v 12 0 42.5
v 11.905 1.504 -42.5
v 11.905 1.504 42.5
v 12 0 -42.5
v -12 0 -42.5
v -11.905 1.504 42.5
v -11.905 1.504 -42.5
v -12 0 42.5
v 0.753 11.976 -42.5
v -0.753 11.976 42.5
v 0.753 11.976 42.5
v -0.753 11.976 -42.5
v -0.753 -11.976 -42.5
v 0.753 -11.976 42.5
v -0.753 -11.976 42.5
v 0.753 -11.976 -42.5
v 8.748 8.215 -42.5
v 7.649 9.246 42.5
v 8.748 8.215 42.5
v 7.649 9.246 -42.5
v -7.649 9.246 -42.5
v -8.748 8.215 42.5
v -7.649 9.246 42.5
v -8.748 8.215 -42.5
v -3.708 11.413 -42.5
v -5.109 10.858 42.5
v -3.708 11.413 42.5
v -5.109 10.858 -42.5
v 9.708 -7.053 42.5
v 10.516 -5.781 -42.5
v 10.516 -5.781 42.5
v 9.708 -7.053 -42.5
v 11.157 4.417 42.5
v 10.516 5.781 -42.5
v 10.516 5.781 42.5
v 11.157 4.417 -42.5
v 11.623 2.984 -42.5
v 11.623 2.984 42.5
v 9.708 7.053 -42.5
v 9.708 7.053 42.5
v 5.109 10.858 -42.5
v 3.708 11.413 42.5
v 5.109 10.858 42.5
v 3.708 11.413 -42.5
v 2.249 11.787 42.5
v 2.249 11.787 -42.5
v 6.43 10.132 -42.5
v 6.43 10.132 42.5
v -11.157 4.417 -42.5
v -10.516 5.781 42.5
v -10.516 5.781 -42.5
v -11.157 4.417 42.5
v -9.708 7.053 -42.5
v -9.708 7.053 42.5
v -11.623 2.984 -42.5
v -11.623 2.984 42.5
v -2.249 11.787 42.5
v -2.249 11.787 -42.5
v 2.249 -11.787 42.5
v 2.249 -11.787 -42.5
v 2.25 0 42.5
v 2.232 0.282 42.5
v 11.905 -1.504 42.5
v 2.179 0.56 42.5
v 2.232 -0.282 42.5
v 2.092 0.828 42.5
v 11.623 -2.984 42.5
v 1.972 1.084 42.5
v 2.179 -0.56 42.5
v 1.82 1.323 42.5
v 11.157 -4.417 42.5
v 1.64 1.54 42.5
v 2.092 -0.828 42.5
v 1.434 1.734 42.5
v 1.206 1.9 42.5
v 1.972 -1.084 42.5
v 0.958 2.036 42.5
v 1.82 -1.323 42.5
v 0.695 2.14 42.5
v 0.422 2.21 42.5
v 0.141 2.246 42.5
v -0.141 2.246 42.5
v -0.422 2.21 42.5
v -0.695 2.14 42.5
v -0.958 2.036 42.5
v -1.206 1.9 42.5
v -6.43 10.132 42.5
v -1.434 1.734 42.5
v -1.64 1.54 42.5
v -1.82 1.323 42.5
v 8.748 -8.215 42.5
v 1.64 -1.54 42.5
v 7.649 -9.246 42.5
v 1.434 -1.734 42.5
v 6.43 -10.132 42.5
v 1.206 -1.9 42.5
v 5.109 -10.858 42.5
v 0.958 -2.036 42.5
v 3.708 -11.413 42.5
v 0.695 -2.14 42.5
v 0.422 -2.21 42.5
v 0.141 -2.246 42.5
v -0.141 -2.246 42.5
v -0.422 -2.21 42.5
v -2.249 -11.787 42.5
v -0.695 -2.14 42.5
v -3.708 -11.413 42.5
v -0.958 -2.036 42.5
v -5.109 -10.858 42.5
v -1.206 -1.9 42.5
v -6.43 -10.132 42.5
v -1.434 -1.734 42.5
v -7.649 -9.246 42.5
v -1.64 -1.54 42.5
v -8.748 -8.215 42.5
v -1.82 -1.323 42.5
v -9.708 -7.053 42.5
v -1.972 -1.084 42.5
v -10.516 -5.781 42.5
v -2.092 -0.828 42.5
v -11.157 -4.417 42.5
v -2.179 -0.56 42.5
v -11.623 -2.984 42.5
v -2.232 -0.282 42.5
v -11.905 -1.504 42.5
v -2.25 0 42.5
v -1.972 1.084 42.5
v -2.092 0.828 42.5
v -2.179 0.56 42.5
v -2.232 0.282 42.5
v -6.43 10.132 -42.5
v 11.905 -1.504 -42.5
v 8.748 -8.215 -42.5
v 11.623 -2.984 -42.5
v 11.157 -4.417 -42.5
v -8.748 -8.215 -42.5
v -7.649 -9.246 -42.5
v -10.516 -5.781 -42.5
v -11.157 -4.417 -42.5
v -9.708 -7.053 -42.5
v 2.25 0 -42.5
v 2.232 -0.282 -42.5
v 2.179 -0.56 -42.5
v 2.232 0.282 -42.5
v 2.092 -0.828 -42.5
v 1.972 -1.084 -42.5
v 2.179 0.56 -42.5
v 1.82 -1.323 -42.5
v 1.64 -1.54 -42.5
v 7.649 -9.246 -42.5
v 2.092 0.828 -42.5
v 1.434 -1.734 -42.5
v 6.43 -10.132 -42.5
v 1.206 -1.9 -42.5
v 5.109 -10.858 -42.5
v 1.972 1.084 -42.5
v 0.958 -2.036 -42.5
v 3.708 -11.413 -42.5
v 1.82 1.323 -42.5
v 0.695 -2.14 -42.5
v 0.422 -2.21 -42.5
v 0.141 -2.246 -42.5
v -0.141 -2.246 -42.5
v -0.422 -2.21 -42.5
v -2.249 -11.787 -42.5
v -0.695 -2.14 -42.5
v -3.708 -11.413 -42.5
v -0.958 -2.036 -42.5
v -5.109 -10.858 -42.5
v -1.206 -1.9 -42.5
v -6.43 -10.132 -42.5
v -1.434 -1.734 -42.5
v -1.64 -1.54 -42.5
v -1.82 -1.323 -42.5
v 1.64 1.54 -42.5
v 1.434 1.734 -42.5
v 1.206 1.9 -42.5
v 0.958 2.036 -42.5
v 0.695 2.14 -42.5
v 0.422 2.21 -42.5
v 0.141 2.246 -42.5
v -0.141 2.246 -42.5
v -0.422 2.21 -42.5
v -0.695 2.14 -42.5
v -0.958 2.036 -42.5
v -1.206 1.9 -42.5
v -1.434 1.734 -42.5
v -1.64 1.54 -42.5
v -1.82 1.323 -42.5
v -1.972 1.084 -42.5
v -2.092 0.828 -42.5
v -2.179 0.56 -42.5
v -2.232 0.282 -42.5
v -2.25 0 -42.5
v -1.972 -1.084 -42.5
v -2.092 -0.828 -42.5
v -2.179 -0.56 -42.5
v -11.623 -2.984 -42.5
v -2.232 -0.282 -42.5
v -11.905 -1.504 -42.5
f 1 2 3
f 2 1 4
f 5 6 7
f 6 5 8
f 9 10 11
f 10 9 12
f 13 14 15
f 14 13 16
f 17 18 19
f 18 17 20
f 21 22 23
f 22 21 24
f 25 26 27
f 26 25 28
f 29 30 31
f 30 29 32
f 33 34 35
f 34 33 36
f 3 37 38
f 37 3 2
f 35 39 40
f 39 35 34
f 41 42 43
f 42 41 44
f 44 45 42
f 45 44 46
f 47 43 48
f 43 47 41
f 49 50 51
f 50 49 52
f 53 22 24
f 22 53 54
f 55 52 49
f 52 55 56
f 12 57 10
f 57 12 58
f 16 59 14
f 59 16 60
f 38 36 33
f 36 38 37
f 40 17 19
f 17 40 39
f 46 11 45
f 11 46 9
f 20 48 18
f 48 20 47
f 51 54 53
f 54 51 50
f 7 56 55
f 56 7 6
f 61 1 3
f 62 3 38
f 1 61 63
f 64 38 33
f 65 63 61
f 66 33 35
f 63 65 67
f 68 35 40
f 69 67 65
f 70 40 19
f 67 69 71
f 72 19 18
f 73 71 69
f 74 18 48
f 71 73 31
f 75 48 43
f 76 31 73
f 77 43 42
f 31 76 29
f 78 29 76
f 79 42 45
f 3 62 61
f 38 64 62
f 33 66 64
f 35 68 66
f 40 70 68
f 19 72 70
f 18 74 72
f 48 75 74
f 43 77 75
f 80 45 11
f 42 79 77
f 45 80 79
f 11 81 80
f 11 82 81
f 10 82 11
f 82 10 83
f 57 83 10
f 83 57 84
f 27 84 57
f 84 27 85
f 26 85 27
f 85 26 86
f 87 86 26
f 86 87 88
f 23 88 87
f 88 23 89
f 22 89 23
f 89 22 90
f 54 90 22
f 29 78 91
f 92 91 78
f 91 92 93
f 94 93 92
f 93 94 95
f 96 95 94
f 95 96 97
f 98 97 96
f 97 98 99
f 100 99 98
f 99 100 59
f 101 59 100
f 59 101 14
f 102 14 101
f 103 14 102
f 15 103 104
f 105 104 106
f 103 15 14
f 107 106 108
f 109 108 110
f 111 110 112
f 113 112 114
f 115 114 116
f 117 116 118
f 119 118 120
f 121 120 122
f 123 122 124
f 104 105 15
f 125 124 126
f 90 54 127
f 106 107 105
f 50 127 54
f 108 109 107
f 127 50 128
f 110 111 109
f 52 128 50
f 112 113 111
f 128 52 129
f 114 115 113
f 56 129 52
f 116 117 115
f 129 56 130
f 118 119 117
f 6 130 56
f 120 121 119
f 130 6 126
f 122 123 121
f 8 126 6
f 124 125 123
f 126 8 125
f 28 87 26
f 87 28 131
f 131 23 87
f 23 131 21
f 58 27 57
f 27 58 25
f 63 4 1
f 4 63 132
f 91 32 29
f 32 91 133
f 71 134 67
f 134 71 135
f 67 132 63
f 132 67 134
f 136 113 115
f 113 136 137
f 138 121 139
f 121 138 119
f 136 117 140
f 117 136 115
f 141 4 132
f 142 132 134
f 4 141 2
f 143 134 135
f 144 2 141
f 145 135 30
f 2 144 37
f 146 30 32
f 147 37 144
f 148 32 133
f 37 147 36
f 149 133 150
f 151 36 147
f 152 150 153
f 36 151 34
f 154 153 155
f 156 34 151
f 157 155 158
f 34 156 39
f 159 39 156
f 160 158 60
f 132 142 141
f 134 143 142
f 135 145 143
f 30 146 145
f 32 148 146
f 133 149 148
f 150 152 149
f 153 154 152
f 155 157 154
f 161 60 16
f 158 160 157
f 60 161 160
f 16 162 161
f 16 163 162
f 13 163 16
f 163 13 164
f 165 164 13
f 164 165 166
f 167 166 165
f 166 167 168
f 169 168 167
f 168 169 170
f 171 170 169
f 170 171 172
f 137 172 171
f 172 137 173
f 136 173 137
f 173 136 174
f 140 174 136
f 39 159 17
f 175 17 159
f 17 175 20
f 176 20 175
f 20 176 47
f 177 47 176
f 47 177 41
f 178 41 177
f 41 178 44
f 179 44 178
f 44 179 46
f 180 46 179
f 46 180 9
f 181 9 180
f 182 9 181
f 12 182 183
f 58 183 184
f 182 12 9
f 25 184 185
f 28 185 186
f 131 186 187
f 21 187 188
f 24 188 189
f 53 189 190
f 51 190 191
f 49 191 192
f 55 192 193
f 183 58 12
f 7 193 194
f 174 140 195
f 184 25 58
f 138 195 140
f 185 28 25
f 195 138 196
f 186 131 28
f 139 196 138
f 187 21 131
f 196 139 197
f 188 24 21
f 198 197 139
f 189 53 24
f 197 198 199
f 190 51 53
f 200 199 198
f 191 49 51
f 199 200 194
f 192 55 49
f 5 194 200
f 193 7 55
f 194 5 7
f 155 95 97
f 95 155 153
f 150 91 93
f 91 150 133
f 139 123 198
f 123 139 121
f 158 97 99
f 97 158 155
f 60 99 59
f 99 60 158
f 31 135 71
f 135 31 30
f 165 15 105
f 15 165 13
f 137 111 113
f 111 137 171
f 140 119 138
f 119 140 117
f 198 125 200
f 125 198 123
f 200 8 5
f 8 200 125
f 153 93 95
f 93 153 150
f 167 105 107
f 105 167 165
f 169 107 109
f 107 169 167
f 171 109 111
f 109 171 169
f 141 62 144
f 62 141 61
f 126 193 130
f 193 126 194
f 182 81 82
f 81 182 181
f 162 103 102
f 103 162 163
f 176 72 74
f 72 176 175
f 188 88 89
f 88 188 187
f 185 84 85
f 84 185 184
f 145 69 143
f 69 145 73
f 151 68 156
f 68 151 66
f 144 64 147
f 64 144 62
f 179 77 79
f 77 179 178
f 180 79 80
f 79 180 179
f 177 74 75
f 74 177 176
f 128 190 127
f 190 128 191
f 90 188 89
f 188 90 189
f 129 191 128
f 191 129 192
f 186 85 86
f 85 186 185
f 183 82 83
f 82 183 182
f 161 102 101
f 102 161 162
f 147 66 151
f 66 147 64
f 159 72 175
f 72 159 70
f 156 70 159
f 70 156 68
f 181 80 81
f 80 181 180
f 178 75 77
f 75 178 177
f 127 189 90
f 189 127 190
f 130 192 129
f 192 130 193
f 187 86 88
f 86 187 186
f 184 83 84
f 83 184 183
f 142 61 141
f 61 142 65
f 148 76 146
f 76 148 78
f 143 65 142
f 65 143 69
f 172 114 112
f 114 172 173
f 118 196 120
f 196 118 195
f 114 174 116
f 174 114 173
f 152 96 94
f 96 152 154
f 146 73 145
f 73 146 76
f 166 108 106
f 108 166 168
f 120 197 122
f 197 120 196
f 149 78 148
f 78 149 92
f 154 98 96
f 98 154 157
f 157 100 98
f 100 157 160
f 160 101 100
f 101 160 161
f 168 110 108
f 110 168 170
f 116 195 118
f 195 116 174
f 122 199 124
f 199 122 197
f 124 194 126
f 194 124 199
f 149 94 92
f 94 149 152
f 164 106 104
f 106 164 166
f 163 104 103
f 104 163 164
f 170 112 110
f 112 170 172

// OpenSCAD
$fn = 50;


difference() {
	union() {
		translate(v = [0, 0, -42.5000000000]) {
			cylinder(h = 85, r = 12.0000000000);
		}
	}
	union() {
		translate(v = [0, 0, -100.0000000000]) {
			cylinder(h = 200, r = 2.2500000000);
		}
	}
}
